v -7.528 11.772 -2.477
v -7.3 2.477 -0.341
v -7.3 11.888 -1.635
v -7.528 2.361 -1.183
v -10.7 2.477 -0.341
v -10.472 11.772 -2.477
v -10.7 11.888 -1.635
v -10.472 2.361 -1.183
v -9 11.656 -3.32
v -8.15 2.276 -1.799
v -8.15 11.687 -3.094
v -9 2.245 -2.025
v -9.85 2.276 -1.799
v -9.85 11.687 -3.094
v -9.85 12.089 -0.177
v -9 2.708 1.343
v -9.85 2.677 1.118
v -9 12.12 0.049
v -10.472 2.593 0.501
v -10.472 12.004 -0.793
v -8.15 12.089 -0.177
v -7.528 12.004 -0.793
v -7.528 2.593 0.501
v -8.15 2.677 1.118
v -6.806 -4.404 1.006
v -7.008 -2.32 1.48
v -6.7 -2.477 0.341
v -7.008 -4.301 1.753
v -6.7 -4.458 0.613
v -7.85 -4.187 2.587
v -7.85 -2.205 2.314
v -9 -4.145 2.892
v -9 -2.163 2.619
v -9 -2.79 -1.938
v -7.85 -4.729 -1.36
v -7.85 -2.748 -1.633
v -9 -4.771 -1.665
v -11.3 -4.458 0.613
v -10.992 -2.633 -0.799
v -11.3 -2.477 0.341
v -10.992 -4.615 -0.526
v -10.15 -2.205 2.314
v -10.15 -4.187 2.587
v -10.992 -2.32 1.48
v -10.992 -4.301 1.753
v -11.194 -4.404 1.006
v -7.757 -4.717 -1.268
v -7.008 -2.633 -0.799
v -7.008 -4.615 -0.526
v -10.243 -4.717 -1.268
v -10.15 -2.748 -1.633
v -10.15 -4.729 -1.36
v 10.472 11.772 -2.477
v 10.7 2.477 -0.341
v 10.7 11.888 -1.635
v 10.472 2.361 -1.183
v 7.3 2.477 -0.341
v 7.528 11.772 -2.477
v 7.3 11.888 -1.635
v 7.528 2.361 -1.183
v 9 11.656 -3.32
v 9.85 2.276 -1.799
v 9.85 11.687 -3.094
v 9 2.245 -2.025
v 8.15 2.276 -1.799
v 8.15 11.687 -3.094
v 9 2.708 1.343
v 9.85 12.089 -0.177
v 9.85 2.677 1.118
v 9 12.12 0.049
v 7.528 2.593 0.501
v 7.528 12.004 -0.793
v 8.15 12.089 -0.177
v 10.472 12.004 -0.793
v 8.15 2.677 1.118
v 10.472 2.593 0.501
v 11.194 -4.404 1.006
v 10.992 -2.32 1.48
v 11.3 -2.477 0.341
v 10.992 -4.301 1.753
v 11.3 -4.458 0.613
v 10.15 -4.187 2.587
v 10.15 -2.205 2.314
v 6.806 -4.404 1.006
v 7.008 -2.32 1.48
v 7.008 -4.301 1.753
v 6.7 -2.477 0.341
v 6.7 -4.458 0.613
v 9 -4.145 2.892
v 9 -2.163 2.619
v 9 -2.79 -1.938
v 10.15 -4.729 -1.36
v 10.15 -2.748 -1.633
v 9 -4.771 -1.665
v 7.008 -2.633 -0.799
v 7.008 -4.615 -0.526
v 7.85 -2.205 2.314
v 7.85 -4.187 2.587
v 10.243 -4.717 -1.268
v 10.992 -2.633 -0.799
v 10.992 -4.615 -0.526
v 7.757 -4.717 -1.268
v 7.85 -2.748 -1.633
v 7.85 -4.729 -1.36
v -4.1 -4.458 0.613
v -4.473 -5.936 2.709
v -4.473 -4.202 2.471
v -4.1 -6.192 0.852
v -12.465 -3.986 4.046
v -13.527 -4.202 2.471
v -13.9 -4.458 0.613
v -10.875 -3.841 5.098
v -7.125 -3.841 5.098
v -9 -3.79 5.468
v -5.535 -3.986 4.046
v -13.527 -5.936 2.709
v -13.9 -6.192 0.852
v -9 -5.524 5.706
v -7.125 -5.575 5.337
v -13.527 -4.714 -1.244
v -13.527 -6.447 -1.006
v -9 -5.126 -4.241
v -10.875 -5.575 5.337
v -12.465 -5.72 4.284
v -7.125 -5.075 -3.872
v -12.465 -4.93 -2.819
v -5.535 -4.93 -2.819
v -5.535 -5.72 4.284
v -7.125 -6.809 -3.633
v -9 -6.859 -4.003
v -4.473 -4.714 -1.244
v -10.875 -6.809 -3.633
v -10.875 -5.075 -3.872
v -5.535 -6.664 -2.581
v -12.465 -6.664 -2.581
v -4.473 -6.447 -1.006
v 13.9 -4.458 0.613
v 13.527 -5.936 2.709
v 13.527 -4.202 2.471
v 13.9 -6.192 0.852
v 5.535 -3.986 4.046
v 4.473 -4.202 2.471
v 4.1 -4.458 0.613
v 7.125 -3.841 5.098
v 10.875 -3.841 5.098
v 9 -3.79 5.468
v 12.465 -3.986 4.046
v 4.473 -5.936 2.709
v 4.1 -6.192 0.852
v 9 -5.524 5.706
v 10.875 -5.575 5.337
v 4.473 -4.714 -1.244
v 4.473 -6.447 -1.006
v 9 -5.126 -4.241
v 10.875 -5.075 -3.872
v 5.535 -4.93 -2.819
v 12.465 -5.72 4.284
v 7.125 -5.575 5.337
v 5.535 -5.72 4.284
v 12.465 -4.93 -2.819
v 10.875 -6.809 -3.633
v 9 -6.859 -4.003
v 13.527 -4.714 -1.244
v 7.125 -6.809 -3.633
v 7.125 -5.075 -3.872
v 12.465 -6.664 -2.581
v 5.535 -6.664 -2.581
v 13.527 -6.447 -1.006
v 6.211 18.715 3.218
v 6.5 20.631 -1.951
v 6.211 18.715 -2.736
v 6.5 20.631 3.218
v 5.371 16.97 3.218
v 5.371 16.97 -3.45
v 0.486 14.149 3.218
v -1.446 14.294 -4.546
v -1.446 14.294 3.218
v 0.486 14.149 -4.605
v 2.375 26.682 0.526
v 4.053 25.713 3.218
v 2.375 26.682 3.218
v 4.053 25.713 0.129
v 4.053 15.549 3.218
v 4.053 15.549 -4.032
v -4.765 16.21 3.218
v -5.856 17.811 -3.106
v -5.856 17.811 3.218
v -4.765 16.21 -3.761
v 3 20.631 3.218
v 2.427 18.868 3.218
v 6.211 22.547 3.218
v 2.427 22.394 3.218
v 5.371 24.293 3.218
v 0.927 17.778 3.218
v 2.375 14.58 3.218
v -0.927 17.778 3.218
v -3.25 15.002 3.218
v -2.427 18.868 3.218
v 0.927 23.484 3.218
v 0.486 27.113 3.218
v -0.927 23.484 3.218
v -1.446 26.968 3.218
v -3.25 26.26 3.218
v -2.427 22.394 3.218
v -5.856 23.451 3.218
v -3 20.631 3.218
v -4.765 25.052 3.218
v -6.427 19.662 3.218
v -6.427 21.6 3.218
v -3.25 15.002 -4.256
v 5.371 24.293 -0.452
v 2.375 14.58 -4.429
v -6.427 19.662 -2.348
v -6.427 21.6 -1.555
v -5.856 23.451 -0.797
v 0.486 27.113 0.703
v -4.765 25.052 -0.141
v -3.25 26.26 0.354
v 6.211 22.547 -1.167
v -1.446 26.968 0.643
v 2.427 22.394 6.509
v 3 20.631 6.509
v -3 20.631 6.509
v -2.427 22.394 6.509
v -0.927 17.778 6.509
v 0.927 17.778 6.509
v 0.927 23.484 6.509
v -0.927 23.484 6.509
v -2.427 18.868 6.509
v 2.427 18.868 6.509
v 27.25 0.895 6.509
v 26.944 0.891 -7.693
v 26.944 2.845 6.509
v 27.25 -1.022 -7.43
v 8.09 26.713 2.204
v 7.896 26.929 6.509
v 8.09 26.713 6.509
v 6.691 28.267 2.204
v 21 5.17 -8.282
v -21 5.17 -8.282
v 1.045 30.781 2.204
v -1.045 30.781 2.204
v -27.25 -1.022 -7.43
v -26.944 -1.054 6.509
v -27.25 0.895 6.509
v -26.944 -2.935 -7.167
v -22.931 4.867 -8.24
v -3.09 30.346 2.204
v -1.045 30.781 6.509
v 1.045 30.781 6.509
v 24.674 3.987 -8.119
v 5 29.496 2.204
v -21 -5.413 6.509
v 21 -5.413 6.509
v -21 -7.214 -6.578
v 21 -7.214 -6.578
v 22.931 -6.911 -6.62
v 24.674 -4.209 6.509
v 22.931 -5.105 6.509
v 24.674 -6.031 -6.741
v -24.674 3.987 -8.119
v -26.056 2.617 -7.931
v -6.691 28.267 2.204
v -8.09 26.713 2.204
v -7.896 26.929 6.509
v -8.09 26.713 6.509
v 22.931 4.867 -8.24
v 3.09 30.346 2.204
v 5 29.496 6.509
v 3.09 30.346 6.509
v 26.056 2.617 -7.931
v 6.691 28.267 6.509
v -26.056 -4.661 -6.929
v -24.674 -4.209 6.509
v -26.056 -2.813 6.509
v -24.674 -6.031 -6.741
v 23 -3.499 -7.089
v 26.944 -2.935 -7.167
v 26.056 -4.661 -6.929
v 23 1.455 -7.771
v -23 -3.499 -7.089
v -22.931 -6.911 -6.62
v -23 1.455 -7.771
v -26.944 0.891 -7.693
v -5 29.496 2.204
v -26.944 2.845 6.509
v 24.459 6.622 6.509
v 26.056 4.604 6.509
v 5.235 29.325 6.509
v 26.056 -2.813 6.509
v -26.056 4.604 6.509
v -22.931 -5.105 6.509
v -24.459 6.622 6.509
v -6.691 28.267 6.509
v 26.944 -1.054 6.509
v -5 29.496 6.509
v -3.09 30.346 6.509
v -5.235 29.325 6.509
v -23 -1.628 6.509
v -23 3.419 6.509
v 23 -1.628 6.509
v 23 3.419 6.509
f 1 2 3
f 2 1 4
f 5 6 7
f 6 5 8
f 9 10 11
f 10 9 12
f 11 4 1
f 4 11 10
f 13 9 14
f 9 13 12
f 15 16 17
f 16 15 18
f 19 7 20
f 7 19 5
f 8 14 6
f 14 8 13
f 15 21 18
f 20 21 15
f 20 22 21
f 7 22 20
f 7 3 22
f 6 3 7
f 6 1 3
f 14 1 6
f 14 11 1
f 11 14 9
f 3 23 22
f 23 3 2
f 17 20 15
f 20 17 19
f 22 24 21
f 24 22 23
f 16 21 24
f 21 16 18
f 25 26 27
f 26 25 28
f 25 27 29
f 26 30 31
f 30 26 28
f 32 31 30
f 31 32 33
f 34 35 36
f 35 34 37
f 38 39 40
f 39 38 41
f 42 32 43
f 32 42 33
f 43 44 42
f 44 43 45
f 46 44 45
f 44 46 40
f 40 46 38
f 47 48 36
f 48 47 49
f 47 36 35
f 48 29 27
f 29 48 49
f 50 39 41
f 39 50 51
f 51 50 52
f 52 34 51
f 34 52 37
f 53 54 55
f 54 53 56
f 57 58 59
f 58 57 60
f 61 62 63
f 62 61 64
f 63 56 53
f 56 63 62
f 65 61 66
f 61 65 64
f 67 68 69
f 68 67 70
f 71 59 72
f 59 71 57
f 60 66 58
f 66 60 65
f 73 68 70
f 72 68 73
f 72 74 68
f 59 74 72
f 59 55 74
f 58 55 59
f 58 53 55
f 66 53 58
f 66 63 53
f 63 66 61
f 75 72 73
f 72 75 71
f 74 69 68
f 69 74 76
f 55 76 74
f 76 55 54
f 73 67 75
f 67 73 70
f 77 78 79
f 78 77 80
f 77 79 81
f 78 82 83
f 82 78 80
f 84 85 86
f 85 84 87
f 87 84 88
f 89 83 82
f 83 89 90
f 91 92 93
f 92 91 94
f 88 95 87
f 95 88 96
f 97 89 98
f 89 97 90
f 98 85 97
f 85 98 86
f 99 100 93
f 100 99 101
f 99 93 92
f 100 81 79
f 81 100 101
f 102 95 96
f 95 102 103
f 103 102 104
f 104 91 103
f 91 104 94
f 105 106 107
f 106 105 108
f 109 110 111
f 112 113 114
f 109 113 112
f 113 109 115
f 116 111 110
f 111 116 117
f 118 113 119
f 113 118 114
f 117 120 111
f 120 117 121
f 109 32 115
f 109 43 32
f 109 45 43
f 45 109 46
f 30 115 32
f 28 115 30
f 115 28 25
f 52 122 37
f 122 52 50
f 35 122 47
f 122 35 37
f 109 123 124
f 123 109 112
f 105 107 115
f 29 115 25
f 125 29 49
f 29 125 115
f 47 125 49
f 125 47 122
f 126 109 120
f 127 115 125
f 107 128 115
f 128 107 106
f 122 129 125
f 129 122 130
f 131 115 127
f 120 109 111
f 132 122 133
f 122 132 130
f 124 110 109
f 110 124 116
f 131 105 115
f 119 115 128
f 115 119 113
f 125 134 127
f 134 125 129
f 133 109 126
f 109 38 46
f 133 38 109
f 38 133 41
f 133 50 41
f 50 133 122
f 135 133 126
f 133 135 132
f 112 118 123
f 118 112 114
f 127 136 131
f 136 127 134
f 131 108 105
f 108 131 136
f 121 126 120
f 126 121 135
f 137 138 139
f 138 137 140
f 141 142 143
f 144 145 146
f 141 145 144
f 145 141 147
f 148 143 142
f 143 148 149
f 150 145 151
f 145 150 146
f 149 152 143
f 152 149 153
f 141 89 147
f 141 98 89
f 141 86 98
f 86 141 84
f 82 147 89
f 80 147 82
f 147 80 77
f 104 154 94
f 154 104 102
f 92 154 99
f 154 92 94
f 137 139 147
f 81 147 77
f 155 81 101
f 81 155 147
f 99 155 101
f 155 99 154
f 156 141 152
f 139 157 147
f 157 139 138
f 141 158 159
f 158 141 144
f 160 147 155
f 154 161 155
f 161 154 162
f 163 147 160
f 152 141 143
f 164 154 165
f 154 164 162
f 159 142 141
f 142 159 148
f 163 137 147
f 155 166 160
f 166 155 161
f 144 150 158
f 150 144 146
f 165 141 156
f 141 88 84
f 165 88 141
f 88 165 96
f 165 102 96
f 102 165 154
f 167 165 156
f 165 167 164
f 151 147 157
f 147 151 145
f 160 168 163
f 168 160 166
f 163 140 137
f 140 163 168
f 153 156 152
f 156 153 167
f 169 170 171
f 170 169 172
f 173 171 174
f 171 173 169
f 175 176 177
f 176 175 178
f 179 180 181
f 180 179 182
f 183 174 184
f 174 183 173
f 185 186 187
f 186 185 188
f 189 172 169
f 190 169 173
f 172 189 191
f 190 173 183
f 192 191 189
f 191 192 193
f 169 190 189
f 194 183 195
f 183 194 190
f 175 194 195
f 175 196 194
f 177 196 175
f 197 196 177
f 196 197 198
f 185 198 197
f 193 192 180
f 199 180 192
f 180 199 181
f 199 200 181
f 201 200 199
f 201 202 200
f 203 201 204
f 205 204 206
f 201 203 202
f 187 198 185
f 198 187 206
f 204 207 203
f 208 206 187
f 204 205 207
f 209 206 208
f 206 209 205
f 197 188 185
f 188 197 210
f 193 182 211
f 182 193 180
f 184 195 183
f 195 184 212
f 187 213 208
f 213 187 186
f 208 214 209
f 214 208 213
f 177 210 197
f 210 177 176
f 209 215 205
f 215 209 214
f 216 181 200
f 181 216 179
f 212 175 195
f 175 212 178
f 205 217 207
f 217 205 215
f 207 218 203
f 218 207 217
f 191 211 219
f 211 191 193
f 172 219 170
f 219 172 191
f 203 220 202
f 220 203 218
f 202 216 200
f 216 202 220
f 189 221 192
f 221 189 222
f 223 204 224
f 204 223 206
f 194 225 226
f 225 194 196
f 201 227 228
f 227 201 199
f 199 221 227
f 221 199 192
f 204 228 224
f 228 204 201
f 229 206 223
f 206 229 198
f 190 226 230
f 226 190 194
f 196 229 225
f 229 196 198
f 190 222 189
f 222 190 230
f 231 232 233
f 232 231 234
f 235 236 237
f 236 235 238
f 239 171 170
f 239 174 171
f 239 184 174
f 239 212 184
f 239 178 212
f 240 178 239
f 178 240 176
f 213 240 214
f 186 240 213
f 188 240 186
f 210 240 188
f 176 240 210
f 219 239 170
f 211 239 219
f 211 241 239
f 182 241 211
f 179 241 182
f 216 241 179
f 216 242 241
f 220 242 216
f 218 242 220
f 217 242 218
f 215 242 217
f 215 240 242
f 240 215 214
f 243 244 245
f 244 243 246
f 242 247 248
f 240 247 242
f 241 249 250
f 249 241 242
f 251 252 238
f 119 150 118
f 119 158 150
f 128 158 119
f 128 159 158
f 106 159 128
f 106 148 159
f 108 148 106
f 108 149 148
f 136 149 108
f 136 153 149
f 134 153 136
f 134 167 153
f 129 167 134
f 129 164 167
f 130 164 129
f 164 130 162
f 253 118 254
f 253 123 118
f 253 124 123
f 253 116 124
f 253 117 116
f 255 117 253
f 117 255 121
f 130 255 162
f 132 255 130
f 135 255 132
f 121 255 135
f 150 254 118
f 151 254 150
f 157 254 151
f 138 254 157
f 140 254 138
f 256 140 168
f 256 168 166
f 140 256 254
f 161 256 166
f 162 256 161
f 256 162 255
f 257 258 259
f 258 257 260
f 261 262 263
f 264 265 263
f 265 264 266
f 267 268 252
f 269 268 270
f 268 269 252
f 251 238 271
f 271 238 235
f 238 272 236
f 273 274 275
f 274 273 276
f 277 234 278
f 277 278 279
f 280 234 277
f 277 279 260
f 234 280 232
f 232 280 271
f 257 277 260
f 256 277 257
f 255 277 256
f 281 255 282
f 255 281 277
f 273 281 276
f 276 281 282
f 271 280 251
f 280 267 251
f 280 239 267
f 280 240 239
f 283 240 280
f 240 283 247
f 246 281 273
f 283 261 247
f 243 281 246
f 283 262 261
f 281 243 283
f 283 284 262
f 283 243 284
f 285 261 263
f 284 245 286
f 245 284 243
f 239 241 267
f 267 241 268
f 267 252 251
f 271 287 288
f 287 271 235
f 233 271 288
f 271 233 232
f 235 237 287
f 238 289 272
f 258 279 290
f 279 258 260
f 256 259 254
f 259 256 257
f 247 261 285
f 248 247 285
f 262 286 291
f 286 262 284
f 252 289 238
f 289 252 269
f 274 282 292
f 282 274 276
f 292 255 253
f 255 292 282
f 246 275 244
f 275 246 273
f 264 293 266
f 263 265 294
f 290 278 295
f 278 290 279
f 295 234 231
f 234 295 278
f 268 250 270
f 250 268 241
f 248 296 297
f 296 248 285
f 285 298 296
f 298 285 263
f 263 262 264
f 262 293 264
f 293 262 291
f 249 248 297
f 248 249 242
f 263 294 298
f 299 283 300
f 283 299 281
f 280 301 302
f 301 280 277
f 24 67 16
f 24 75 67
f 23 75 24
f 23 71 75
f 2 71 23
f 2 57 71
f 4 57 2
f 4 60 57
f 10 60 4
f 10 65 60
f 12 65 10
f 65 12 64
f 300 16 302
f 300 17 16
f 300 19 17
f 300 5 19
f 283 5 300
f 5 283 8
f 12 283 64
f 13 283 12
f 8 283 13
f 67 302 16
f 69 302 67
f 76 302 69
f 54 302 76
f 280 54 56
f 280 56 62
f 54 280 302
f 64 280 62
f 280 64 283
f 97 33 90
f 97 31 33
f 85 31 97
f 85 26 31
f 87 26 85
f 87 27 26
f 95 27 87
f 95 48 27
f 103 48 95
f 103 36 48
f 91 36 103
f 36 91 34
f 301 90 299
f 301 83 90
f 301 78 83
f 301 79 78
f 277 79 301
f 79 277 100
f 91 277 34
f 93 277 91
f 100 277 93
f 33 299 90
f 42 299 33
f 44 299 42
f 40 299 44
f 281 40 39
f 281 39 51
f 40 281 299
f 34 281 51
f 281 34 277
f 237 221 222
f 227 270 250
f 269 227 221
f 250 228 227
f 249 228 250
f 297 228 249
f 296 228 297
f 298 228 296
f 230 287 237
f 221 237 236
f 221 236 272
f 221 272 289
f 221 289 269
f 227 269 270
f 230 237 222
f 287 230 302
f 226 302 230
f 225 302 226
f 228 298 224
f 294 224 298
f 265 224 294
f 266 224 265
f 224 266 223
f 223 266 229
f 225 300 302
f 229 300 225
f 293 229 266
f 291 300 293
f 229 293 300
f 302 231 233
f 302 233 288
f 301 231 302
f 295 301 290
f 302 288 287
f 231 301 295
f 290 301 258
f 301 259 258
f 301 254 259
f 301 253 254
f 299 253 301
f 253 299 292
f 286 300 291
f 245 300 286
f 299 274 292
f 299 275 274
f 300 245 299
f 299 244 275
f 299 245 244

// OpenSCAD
fenderWidth = 46;
fenderThick = 5;
stayAngle = 4;
stayAngle = asin(45/(13*25.4));
module fenderStay(dir=1) {
    translate([0,8,0]) {
        rotate([90,0,stayAngle*dir]) cylinder(d=5, h=13*25.4, center=false);
        translate([0,-9,0]) rotate([90,0,90*dir+stayAngle*dir]) cylinder(d=3.5, h=12, center=false);
    }
}
rotate([-stayAngle,0,0]) intersection() {

    rotate([0,0,0]) difference() {
        union() {
            hull() {
                translate([fenderWidth/2-2, 0, 0]) cylinder(d=fenderThick*2.5, h=15, center=true);
                translate([-fenderWidth/2+2, 0, 0]) cylinder(d=fenderThick*2.5, h=15, center=true);
                translate([0,20,15/2]) rotate([stayAngle,0,0]) cylinder(d=20, h=5, center=true);
            }
        }
        cube([fenderWidth, fenderThick, 25], center=true);
        for (xx=[-9:18:9]) {
            translate([xx,-(fenderThick/2+2),0]) rotate([90,0,0]) cylinder(d=9.8, h=6, center=false);
            translate([xx, 0, 0]) {
                rotate([-90,0,0]) cylinder(d=3.4, h=12, center=false, $fn=12);
                rotate([90,0,0]) cylinder(d=4.6, h=25, center=false, $fn=12);
            }
        }
        translate([0,20,12/2]) rotate([stayAngle,0,0]) {
            rotate([180,0,0]) cylinder(d=13, h=10, center=false);
            cylinder(d=6, h=25, center=true);
        }

    }
    translate([0,0,-1]) rotate([stayAngle,0,0]) cube([100, 100,15], center=true);
}

offset=15;
